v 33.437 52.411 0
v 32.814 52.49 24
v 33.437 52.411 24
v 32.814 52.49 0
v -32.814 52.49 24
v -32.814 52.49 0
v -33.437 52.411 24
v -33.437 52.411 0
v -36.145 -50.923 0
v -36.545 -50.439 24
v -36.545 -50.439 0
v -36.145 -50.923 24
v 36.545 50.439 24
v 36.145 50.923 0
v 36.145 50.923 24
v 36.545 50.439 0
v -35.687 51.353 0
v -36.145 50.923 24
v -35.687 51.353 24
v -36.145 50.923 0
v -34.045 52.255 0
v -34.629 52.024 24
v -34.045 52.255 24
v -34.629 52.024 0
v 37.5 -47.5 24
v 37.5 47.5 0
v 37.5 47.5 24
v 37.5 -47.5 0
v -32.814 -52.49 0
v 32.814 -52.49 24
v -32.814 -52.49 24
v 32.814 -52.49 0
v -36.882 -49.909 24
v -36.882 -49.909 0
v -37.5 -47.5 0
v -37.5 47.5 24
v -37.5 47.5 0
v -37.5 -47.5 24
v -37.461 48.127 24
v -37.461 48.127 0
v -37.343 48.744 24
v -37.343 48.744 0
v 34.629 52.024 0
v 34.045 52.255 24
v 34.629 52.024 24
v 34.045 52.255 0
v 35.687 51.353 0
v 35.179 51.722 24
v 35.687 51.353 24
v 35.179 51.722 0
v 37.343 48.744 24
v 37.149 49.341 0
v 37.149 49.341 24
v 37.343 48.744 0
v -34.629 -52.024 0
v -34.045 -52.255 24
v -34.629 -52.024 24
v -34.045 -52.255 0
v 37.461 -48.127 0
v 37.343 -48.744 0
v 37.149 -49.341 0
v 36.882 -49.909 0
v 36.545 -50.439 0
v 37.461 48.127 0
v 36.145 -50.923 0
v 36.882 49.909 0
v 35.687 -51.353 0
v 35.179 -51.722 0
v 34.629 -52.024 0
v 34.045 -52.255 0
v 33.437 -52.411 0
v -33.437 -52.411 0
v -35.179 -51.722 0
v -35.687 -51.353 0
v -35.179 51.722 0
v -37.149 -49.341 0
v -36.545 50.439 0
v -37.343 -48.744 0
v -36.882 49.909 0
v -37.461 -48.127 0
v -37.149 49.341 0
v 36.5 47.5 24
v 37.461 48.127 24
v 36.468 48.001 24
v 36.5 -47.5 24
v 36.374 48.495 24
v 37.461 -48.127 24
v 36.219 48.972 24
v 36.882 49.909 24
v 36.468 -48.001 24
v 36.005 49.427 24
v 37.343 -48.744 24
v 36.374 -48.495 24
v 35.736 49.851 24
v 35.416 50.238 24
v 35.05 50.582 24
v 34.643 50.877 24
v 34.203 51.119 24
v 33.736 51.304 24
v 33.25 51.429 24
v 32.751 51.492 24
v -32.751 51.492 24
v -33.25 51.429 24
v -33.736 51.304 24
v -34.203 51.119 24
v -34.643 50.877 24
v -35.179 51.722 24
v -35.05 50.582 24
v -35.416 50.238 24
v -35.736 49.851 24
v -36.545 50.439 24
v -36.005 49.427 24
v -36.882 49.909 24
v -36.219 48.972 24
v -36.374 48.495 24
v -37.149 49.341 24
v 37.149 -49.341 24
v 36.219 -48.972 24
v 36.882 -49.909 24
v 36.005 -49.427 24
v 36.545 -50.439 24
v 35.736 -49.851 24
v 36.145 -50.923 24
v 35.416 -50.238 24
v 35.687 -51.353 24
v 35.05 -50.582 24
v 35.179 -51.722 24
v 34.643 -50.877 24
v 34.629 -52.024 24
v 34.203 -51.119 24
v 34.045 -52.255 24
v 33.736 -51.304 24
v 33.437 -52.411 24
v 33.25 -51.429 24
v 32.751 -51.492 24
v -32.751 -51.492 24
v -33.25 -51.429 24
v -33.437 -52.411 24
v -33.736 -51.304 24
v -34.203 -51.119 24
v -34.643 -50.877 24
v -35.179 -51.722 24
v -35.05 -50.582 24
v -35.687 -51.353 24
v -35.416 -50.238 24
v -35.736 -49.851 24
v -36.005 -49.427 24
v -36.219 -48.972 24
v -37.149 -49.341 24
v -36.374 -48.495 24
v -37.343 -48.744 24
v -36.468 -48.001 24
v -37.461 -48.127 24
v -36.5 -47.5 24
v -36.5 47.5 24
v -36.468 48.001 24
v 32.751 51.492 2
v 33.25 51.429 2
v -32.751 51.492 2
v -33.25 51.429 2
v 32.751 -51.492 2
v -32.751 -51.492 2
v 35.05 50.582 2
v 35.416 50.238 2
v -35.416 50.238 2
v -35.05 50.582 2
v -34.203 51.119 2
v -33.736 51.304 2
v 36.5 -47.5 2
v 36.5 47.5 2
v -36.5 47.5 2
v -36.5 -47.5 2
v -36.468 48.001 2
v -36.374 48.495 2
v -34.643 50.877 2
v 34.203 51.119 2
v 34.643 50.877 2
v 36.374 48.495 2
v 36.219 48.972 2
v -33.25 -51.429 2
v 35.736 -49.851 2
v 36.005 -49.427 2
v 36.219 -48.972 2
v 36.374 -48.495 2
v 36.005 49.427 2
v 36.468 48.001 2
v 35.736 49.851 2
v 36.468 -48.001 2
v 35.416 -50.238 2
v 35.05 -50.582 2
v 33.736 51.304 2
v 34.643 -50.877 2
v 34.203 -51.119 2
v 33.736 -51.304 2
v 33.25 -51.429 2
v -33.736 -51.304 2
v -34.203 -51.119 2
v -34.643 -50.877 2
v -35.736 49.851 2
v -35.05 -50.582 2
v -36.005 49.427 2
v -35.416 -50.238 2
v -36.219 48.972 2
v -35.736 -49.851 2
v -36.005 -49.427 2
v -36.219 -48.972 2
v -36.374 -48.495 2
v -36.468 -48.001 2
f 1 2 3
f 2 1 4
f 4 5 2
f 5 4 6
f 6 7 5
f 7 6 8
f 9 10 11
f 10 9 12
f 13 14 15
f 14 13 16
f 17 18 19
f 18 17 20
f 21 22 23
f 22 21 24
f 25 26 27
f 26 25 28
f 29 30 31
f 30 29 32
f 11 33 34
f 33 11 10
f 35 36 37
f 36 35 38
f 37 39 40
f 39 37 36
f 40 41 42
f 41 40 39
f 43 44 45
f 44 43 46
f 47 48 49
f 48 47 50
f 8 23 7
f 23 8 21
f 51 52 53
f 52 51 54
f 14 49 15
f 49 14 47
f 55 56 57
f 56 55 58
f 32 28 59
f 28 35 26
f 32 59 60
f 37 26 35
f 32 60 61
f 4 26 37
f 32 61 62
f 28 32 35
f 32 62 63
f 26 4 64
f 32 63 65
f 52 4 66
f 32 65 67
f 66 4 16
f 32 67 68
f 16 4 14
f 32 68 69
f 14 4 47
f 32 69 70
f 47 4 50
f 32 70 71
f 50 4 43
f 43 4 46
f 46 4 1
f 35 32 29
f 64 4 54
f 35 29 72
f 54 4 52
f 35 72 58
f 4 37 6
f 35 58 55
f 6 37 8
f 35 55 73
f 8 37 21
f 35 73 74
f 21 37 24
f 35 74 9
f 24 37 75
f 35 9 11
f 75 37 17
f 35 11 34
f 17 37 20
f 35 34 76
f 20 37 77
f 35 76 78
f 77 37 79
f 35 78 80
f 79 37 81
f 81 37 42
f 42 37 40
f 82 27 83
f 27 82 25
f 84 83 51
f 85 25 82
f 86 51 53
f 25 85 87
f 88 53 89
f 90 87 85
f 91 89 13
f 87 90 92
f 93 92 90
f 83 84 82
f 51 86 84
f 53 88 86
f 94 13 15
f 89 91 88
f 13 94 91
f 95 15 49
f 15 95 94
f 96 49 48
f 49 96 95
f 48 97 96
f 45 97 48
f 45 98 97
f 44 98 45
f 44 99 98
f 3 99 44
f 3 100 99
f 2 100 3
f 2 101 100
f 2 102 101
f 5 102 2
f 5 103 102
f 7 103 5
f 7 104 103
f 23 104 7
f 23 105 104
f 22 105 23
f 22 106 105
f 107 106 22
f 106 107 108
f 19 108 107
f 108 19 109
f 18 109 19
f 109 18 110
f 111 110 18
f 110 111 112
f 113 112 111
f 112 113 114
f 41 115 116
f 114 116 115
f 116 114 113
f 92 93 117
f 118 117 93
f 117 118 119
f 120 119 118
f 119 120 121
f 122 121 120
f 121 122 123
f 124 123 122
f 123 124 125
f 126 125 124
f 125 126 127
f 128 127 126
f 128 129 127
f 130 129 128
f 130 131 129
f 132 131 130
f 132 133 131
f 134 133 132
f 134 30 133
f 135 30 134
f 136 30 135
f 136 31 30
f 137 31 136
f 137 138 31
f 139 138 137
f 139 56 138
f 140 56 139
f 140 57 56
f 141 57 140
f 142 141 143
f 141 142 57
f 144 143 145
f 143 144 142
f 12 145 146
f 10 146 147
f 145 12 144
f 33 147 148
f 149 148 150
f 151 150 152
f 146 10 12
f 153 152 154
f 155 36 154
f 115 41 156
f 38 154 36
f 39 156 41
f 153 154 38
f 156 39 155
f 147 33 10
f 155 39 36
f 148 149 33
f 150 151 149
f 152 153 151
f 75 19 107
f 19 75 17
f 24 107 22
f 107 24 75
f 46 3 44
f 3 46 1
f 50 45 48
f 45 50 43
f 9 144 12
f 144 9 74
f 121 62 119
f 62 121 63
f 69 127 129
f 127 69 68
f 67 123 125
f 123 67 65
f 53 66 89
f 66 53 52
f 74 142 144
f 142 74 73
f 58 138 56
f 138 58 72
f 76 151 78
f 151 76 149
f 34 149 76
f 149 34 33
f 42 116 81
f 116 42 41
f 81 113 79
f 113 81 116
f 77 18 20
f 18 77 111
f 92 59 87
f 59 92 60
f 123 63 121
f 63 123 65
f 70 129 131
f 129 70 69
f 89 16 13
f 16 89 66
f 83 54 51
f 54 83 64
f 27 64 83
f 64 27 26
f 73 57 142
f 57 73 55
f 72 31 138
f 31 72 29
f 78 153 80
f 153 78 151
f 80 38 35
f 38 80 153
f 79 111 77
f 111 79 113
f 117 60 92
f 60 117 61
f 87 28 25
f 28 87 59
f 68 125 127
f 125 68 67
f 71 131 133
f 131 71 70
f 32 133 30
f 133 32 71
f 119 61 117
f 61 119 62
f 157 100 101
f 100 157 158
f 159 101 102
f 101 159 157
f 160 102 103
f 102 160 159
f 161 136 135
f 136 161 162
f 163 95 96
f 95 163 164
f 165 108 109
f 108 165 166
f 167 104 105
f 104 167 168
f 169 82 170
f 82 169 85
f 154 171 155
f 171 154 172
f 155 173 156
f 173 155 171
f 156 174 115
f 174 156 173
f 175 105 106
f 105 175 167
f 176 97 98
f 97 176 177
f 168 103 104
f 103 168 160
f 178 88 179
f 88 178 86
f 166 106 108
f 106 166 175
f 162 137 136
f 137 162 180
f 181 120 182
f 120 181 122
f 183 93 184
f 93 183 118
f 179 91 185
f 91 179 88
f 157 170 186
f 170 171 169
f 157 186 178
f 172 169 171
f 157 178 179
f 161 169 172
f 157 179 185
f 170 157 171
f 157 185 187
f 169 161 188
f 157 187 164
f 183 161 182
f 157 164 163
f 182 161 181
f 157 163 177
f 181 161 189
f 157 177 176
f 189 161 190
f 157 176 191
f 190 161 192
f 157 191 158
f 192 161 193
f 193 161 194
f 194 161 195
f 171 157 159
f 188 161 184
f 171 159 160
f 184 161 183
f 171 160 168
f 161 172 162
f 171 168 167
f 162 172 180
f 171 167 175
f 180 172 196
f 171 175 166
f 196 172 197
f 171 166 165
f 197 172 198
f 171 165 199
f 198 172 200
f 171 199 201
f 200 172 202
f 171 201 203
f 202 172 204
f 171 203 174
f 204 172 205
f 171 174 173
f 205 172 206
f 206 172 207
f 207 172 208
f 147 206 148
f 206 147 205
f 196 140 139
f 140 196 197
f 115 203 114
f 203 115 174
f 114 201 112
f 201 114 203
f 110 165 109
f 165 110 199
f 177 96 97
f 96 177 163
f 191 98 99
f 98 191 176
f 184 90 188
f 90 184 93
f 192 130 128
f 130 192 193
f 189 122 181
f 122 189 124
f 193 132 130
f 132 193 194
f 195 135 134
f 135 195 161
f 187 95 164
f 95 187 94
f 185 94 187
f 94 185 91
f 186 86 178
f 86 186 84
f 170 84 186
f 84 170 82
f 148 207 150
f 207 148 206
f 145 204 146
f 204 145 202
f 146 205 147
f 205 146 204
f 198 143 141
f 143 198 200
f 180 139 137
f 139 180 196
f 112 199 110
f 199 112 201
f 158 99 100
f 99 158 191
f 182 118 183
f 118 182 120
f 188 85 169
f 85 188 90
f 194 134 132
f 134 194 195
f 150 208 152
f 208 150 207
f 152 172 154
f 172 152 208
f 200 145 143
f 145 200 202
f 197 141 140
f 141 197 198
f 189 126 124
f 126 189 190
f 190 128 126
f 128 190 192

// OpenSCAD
$fn = 50;


difference() {
	union() {
		hull() {
			translate(v = [-32.5000000000, 47.5000000000, 0]) {
				cylinder(h = 24, r = 5);
			}
			translate(v = [32.5000000000, 47.5000000000, 0]) {
				cylinder(h = 24, r = 5);
			}
			translate(v = [-32.5000000000, -47.5000000000, 0]) {
				cylinder(h = 24, r = 5);
			}
			translate(v = [32.5000000000, -47.5000000000, 0]) {
				cylinder(h = 24, r = 5);
			}
		}
	}
	union() {
		translate(v = [0, 0, 2]) {
			hull() {
				translate(v = [-32.5000000000, 47.5000000000, 0]) {
					cylinder(h = 22, r = 4);
				}
				translate(v = [32.5000000000, 47.5000000000, 0]) {
					cylinder(h = 22, r = 4);
				}
				translate(v = [-32.5000000000, -47.5000000000, 0]) {
					cylinder(h = 22, r = 4);
				}
				translate(v = [32.5000000000, -47.5000000000, 0]) {
					cylinder(h = 22, r = 4);
				}
			}
		}
	}
}
